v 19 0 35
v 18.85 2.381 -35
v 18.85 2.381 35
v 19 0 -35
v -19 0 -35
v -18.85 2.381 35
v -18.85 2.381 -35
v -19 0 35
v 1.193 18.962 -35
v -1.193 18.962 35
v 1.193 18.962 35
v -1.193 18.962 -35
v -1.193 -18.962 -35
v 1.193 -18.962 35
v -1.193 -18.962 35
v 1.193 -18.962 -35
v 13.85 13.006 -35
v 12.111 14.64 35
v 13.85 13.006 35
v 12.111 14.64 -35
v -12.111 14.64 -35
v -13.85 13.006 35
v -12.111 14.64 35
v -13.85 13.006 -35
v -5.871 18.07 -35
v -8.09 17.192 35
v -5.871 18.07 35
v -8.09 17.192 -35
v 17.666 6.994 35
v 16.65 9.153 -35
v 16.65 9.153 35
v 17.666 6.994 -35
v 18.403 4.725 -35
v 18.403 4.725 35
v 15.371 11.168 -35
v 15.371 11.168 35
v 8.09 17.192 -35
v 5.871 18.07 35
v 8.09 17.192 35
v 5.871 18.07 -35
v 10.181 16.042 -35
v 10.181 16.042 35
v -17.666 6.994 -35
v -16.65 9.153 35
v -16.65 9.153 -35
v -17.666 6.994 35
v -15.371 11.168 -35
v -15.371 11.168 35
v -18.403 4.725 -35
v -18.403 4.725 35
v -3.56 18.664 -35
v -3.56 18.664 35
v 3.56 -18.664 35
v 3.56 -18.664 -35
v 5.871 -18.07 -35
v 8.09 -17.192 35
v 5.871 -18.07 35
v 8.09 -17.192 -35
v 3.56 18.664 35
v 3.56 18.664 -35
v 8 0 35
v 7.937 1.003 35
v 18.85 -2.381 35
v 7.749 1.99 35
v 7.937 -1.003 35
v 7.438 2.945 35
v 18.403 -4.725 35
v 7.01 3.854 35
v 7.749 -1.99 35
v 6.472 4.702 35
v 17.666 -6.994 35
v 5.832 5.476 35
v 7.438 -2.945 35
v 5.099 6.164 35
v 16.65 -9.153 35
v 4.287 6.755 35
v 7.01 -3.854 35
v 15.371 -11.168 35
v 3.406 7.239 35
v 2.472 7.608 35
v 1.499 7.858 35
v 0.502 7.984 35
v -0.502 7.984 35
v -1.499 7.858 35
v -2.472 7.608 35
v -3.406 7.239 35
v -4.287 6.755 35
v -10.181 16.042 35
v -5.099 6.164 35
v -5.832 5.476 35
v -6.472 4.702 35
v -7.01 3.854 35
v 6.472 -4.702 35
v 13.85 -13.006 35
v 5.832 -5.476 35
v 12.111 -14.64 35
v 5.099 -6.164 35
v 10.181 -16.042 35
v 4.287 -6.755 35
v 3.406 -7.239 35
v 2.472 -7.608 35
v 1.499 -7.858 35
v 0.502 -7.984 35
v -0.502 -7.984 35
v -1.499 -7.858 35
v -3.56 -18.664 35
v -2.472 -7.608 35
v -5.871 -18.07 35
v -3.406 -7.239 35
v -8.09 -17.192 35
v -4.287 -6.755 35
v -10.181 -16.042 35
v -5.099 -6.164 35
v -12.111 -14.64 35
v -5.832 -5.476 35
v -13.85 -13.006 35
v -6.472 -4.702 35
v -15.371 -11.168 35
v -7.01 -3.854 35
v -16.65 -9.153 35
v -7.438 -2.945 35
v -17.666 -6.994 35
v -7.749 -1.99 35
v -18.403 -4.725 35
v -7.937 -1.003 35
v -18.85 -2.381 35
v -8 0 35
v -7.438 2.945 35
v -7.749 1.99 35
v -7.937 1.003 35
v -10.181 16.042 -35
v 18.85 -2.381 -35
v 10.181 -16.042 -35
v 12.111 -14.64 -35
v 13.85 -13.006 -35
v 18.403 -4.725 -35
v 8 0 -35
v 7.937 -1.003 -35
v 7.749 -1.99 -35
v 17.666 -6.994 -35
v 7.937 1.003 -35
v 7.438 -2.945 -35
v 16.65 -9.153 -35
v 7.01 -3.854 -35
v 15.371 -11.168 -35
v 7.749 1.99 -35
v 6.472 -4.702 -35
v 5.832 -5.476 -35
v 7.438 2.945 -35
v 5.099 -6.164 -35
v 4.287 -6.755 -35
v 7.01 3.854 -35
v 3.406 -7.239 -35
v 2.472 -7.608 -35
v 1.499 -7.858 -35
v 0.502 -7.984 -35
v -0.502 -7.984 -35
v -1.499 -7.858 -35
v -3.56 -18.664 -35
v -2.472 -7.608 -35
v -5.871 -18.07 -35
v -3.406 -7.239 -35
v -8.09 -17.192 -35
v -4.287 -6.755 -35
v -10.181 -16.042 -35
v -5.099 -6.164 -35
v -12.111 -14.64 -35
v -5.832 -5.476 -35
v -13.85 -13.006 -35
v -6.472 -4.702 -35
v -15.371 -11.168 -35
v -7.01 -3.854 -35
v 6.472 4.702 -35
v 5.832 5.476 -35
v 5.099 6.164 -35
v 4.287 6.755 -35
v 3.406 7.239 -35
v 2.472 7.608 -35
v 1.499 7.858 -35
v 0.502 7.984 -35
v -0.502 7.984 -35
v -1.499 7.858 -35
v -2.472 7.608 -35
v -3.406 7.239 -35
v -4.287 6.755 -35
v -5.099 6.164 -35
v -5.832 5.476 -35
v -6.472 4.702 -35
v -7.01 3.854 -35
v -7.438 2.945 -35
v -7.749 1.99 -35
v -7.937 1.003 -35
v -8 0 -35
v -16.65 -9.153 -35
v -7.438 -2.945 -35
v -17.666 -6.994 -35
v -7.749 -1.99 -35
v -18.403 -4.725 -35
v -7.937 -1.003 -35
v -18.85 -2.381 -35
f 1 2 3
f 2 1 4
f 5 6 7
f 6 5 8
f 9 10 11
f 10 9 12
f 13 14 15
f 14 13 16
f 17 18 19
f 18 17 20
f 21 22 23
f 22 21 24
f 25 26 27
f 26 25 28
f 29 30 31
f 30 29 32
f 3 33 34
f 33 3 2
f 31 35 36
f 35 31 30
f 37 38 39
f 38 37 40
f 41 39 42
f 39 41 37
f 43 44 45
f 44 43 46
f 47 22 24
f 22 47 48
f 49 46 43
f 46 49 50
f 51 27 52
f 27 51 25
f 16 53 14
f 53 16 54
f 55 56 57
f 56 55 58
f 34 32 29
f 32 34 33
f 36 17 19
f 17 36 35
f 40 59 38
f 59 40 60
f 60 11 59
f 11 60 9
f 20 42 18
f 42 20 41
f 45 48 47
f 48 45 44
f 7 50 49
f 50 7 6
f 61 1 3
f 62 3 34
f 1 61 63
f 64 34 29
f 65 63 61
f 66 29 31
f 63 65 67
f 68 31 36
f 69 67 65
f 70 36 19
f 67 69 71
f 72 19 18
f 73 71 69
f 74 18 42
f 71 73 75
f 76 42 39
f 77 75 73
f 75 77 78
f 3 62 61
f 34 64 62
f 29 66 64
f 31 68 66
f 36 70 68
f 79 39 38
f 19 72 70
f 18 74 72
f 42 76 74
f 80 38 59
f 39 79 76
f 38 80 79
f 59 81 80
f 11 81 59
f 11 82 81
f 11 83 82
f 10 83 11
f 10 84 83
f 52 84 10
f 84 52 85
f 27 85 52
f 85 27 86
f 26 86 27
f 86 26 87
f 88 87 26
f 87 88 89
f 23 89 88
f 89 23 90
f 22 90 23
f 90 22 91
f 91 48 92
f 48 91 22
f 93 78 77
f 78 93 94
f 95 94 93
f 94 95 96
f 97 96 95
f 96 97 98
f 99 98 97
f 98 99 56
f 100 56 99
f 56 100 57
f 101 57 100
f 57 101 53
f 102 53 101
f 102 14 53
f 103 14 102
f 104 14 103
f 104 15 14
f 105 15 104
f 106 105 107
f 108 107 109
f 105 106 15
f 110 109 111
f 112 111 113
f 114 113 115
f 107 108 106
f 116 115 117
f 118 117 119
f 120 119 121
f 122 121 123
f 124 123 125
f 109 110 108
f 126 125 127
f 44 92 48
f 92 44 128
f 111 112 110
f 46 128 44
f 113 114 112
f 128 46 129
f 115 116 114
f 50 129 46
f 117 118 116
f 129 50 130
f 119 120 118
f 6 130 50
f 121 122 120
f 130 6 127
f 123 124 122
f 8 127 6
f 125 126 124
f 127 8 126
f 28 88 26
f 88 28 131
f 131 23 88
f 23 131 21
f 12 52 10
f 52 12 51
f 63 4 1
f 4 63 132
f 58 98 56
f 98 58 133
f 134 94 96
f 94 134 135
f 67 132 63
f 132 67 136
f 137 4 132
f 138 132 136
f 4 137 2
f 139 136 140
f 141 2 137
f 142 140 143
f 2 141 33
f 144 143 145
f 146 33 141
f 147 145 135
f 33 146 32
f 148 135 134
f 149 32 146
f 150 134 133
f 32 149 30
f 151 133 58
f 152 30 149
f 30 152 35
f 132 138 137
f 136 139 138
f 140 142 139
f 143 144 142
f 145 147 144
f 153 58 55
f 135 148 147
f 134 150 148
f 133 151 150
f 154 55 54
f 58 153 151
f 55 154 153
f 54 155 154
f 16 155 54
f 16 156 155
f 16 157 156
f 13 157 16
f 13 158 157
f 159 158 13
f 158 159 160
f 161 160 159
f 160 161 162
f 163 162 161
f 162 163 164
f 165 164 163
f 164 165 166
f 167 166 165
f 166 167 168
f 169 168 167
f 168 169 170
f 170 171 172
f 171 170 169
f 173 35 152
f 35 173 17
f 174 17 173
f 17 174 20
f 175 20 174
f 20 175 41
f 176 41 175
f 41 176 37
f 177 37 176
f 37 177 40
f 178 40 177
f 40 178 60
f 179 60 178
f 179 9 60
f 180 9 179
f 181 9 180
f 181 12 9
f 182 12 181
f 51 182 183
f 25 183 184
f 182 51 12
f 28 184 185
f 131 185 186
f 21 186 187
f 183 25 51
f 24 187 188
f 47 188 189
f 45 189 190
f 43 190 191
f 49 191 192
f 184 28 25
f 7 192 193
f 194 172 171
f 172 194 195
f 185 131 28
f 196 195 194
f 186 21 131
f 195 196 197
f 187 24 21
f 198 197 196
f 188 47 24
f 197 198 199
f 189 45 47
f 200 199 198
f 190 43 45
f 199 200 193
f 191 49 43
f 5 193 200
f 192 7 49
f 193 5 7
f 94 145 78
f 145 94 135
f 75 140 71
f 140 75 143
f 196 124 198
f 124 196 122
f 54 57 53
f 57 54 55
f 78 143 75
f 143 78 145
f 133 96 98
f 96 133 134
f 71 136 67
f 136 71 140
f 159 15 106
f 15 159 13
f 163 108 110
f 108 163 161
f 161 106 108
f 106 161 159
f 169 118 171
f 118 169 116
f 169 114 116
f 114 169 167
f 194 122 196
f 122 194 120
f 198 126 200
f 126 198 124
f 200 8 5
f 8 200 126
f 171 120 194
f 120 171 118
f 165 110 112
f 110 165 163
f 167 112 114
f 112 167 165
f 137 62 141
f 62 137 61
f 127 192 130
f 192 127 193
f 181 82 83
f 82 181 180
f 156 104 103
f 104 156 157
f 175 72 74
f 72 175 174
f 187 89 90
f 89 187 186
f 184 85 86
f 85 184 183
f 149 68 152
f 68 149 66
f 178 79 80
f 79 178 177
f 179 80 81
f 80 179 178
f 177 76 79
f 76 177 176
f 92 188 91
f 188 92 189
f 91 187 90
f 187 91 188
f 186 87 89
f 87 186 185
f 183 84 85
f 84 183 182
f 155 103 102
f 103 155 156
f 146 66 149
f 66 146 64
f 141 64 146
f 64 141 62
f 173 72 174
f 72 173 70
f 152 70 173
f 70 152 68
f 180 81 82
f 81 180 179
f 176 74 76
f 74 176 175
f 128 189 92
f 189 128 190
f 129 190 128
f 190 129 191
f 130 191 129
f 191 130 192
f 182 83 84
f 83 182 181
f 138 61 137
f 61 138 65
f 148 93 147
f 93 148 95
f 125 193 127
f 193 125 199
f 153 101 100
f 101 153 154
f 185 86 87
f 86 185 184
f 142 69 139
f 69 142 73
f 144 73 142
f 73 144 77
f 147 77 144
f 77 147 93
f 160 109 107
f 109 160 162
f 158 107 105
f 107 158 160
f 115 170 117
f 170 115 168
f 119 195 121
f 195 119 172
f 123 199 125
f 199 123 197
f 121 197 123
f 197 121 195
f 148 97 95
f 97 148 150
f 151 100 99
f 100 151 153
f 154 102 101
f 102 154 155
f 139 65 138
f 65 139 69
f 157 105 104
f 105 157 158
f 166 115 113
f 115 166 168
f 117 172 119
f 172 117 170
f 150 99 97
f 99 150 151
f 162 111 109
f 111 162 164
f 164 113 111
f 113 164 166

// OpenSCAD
$fn = 50;


difference() {
	union() {
		translate(v = [0, 0, -35.0000000000]) {
			cylinder(h = 70, r = 19.0000000000);
		}
	}
	union() {
		translate(v = [0, 0, -100.0000000000]) {
			cylinder(h = 200, r = 8);
		}
	}
}
